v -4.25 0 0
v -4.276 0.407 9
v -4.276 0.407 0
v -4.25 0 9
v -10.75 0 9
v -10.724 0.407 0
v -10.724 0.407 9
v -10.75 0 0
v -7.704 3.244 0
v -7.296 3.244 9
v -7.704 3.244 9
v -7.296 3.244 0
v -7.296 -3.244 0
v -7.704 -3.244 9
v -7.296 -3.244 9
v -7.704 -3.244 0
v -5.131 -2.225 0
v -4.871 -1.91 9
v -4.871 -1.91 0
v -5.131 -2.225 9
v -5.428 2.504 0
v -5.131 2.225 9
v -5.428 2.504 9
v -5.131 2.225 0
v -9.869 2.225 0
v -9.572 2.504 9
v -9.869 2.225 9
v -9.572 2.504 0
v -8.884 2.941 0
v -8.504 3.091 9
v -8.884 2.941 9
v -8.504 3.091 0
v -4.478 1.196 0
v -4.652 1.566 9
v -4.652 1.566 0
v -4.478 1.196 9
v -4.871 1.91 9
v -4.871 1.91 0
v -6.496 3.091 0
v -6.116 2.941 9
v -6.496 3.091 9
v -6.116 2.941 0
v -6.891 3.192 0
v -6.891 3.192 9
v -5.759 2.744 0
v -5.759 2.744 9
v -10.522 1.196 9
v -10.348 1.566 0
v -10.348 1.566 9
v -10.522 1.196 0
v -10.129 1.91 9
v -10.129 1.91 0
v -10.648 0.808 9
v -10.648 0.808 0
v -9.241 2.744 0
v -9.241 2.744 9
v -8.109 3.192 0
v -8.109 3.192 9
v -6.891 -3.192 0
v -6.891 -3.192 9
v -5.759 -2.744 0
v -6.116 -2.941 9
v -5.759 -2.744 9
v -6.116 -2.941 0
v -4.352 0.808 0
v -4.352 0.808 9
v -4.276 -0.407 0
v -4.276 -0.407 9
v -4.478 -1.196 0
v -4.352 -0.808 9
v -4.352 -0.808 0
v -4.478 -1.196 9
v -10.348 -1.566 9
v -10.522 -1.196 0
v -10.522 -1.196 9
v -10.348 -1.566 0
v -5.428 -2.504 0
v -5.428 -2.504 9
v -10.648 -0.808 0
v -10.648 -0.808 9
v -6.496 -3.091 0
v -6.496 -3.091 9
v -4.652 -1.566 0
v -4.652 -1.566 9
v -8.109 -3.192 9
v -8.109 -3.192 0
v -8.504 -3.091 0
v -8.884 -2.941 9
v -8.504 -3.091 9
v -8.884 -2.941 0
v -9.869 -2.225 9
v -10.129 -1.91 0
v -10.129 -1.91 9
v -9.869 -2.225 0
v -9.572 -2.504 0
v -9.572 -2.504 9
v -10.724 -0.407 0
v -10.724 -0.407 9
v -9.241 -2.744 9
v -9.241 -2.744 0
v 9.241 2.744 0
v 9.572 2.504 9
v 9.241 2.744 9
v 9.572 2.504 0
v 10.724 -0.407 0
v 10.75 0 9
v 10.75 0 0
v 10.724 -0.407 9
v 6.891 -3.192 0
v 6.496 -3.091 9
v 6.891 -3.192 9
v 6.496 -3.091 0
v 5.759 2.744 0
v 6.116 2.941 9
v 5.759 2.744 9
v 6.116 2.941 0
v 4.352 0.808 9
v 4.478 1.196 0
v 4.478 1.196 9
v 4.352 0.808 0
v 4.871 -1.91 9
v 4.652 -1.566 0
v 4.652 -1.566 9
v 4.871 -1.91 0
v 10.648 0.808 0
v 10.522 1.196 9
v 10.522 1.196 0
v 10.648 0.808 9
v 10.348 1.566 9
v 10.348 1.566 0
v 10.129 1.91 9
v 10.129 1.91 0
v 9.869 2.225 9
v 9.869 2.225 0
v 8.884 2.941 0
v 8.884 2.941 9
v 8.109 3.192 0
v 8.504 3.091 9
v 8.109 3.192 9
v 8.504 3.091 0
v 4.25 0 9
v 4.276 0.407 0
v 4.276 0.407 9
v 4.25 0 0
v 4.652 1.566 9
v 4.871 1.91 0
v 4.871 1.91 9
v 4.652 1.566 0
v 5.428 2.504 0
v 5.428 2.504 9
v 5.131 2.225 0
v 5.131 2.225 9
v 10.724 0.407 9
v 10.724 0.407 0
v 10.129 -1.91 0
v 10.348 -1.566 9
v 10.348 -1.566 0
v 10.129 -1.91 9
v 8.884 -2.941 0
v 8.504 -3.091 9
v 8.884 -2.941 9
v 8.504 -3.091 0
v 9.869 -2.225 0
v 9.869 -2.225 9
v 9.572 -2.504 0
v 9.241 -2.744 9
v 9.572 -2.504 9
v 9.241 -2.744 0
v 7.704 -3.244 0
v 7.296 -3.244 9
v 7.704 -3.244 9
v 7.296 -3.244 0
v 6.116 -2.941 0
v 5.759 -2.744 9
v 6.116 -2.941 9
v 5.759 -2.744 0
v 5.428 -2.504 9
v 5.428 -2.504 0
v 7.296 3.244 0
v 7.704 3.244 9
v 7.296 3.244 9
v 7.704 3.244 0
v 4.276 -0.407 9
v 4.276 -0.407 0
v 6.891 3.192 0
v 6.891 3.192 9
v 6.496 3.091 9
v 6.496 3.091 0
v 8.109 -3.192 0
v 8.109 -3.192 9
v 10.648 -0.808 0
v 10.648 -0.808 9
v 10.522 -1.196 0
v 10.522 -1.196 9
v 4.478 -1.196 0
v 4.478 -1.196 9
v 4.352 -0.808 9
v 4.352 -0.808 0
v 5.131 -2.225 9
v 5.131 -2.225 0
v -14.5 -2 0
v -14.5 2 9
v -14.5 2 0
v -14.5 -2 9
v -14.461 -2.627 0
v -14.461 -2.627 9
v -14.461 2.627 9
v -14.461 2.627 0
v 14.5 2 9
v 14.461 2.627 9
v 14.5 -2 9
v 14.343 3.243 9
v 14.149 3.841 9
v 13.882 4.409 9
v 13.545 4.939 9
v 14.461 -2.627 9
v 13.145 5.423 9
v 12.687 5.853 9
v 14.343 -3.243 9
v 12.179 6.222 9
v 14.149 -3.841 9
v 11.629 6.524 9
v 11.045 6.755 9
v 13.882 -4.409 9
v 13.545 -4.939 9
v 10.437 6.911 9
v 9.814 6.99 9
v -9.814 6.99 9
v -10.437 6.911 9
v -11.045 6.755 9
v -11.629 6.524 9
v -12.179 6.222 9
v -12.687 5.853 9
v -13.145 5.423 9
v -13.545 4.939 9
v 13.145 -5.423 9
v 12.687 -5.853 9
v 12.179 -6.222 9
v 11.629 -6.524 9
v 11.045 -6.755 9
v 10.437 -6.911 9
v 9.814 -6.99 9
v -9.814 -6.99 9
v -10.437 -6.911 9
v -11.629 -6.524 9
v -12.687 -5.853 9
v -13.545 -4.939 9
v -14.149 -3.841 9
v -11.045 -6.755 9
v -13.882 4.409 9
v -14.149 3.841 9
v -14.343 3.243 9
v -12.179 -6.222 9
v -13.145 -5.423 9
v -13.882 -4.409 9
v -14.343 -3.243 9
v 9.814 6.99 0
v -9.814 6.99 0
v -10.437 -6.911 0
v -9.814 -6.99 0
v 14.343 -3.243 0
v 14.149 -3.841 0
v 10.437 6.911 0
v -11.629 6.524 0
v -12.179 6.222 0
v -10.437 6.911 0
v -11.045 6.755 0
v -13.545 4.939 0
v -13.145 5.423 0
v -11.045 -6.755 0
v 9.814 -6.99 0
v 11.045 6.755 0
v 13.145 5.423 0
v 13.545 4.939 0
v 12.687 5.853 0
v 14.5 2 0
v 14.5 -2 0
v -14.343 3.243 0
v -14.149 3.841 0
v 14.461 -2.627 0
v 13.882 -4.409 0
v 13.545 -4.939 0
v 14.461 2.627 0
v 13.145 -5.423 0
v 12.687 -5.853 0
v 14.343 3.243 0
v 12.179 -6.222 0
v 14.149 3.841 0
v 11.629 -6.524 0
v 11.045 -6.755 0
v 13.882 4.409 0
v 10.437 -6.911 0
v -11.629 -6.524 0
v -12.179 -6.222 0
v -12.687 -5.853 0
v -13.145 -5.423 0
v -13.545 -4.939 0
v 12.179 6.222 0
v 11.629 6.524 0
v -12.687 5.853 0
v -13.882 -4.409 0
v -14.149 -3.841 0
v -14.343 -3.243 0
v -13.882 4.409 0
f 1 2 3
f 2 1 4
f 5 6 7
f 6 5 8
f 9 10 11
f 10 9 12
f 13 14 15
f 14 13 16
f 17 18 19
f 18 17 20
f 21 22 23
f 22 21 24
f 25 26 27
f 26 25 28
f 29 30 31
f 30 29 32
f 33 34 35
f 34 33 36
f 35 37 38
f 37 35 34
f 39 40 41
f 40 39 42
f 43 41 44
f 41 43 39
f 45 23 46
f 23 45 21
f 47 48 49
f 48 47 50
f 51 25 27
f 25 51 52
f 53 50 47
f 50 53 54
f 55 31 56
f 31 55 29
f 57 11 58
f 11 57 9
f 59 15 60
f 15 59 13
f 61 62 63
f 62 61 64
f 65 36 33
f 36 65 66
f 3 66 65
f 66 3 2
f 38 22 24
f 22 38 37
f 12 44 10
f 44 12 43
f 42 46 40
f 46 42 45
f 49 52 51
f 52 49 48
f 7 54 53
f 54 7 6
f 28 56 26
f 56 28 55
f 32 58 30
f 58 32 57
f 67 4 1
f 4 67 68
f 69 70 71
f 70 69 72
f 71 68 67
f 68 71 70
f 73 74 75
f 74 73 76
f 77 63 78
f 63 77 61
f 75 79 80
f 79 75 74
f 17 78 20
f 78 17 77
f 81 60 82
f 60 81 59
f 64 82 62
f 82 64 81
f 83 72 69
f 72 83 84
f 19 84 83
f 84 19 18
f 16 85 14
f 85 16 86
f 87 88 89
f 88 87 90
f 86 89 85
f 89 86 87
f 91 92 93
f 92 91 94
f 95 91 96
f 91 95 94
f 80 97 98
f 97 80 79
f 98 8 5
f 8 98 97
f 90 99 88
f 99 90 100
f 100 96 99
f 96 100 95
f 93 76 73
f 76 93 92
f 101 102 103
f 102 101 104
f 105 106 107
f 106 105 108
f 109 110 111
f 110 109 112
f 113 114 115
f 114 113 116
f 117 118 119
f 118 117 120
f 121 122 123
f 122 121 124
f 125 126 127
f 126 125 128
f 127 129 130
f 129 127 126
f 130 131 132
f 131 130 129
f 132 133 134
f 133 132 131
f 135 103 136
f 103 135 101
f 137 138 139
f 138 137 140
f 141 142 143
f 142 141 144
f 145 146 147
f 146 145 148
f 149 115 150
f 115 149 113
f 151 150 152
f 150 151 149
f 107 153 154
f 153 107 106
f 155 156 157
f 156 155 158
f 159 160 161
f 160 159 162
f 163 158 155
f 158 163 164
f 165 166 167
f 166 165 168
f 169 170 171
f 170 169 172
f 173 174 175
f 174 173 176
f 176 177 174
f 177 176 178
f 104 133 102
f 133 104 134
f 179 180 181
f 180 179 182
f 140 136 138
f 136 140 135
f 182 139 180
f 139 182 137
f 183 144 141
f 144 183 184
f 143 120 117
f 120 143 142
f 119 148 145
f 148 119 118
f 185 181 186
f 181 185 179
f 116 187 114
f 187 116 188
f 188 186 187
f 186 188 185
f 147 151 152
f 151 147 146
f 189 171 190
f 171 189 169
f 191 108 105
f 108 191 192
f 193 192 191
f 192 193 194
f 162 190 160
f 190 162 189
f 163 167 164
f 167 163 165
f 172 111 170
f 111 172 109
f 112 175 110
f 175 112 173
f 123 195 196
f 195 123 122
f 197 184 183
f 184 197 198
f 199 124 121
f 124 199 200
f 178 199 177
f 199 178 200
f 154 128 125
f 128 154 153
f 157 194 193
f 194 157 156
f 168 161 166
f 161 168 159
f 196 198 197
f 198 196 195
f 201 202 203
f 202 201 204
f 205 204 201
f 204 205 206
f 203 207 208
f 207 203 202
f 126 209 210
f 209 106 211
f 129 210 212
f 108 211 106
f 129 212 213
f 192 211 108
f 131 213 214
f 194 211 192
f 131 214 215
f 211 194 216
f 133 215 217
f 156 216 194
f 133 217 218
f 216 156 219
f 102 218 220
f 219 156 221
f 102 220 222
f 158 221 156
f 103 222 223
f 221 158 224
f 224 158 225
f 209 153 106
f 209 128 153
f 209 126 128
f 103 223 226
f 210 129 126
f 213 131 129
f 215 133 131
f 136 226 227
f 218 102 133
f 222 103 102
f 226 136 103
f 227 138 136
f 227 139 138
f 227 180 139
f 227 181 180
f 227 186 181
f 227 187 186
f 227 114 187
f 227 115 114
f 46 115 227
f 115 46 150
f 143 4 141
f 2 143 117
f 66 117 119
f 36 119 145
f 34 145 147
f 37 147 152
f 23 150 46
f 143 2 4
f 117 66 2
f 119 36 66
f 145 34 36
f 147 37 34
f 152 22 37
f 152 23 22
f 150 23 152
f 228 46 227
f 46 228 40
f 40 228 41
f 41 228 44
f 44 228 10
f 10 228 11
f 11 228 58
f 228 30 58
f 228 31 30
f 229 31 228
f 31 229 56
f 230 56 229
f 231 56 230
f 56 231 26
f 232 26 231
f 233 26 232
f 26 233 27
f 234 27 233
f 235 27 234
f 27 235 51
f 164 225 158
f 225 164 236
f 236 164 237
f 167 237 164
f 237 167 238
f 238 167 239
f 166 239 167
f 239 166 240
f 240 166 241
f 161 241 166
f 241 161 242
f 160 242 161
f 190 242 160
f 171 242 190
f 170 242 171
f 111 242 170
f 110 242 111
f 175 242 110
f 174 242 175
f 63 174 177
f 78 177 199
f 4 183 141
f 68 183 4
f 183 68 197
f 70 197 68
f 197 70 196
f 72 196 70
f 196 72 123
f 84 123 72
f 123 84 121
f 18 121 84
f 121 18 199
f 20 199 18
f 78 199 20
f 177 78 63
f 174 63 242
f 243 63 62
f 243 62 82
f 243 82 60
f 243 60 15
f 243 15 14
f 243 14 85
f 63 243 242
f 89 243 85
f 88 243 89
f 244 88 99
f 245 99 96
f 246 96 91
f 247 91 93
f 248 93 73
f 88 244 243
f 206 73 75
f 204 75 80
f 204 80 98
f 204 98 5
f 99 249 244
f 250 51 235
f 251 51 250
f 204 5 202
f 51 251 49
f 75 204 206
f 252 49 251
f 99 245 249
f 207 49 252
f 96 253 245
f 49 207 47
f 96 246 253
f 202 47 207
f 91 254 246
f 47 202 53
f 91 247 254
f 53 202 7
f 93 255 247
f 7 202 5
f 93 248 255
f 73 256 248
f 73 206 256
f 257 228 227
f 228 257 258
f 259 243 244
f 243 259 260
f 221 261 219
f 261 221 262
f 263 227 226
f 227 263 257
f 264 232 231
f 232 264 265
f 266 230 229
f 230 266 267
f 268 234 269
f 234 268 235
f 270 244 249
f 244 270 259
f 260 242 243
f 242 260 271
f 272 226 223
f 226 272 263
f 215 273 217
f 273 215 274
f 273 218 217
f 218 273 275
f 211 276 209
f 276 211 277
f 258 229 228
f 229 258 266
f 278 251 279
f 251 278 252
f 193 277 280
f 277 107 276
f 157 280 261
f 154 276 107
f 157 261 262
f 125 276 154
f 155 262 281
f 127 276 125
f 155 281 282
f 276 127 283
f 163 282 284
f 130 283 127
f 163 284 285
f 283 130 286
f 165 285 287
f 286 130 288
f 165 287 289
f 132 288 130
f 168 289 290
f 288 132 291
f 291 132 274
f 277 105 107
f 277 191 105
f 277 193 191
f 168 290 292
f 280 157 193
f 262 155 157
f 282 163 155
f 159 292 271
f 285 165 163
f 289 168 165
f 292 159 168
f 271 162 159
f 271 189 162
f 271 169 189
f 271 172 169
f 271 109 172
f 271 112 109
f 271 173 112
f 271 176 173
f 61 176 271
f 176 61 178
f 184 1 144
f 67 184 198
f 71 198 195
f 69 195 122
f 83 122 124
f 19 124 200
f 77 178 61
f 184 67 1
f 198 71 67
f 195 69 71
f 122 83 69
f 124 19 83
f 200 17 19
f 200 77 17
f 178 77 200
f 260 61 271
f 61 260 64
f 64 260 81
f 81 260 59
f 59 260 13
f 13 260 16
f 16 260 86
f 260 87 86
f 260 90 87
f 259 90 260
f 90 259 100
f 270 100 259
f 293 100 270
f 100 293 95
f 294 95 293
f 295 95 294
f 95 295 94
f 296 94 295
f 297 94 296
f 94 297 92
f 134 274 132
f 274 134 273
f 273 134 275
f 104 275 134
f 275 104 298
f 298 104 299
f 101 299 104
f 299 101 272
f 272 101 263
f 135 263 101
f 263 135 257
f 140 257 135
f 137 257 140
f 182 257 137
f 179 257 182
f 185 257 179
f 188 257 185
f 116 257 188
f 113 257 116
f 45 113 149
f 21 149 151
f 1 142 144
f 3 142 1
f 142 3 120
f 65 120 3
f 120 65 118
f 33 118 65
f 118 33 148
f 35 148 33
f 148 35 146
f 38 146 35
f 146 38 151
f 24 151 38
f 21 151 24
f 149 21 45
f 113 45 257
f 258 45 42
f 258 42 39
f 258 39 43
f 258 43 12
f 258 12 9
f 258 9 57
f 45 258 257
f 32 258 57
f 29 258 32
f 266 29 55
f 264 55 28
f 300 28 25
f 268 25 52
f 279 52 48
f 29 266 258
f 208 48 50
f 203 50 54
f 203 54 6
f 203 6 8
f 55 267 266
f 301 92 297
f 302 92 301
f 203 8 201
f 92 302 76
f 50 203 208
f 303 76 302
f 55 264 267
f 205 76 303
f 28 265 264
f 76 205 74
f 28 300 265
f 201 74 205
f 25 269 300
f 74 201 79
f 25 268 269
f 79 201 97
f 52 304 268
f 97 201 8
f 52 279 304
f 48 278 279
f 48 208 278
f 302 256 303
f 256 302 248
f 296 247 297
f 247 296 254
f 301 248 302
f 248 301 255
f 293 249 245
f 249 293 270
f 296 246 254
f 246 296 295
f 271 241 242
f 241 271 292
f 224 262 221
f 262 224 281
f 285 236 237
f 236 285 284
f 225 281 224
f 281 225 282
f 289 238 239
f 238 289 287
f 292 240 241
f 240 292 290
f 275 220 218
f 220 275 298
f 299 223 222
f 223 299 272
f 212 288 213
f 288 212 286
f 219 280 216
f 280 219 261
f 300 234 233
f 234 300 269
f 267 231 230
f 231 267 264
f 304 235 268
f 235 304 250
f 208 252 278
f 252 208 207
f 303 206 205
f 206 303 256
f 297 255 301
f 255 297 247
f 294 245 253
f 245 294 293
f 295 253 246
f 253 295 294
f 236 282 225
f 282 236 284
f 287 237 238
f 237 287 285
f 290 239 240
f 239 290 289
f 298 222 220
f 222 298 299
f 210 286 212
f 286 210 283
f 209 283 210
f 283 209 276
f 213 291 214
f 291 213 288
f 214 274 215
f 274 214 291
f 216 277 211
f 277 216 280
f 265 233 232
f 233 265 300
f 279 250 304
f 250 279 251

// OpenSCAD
$fn = 50;


difference() {
	union() {
		hull() {
			translate(v = [-9.5000000000, 2.0000000000, 0]) {
				cylinder(h = 9, r = 5);
			}
			translate(v = [9.5000000000, 2.0000000000, 0]) {
				cylinder(h = 9, r = 5);
			}
			translate(v = [-9.5000000000, -2.0000000000, 0]) {
				cylinder(h = 9, r = 5);
			}
			translate(v = [9.5000000000, -2.0000000000, 0]) {
				cylinder(h = 9, r = 5);
			}
		}
	}
	union() {
		translate(v = [-7.5000000000, 0.0000000000, -100.0000000000]) {
			cylinder(h = 200, r = 3.2500000000);
		}
		translate(v = [7.5000000000, 0.0000000000, -100.0000000000]) {
			cylinder(h = 200, r = 3.2500000000);
		}
	}
}
